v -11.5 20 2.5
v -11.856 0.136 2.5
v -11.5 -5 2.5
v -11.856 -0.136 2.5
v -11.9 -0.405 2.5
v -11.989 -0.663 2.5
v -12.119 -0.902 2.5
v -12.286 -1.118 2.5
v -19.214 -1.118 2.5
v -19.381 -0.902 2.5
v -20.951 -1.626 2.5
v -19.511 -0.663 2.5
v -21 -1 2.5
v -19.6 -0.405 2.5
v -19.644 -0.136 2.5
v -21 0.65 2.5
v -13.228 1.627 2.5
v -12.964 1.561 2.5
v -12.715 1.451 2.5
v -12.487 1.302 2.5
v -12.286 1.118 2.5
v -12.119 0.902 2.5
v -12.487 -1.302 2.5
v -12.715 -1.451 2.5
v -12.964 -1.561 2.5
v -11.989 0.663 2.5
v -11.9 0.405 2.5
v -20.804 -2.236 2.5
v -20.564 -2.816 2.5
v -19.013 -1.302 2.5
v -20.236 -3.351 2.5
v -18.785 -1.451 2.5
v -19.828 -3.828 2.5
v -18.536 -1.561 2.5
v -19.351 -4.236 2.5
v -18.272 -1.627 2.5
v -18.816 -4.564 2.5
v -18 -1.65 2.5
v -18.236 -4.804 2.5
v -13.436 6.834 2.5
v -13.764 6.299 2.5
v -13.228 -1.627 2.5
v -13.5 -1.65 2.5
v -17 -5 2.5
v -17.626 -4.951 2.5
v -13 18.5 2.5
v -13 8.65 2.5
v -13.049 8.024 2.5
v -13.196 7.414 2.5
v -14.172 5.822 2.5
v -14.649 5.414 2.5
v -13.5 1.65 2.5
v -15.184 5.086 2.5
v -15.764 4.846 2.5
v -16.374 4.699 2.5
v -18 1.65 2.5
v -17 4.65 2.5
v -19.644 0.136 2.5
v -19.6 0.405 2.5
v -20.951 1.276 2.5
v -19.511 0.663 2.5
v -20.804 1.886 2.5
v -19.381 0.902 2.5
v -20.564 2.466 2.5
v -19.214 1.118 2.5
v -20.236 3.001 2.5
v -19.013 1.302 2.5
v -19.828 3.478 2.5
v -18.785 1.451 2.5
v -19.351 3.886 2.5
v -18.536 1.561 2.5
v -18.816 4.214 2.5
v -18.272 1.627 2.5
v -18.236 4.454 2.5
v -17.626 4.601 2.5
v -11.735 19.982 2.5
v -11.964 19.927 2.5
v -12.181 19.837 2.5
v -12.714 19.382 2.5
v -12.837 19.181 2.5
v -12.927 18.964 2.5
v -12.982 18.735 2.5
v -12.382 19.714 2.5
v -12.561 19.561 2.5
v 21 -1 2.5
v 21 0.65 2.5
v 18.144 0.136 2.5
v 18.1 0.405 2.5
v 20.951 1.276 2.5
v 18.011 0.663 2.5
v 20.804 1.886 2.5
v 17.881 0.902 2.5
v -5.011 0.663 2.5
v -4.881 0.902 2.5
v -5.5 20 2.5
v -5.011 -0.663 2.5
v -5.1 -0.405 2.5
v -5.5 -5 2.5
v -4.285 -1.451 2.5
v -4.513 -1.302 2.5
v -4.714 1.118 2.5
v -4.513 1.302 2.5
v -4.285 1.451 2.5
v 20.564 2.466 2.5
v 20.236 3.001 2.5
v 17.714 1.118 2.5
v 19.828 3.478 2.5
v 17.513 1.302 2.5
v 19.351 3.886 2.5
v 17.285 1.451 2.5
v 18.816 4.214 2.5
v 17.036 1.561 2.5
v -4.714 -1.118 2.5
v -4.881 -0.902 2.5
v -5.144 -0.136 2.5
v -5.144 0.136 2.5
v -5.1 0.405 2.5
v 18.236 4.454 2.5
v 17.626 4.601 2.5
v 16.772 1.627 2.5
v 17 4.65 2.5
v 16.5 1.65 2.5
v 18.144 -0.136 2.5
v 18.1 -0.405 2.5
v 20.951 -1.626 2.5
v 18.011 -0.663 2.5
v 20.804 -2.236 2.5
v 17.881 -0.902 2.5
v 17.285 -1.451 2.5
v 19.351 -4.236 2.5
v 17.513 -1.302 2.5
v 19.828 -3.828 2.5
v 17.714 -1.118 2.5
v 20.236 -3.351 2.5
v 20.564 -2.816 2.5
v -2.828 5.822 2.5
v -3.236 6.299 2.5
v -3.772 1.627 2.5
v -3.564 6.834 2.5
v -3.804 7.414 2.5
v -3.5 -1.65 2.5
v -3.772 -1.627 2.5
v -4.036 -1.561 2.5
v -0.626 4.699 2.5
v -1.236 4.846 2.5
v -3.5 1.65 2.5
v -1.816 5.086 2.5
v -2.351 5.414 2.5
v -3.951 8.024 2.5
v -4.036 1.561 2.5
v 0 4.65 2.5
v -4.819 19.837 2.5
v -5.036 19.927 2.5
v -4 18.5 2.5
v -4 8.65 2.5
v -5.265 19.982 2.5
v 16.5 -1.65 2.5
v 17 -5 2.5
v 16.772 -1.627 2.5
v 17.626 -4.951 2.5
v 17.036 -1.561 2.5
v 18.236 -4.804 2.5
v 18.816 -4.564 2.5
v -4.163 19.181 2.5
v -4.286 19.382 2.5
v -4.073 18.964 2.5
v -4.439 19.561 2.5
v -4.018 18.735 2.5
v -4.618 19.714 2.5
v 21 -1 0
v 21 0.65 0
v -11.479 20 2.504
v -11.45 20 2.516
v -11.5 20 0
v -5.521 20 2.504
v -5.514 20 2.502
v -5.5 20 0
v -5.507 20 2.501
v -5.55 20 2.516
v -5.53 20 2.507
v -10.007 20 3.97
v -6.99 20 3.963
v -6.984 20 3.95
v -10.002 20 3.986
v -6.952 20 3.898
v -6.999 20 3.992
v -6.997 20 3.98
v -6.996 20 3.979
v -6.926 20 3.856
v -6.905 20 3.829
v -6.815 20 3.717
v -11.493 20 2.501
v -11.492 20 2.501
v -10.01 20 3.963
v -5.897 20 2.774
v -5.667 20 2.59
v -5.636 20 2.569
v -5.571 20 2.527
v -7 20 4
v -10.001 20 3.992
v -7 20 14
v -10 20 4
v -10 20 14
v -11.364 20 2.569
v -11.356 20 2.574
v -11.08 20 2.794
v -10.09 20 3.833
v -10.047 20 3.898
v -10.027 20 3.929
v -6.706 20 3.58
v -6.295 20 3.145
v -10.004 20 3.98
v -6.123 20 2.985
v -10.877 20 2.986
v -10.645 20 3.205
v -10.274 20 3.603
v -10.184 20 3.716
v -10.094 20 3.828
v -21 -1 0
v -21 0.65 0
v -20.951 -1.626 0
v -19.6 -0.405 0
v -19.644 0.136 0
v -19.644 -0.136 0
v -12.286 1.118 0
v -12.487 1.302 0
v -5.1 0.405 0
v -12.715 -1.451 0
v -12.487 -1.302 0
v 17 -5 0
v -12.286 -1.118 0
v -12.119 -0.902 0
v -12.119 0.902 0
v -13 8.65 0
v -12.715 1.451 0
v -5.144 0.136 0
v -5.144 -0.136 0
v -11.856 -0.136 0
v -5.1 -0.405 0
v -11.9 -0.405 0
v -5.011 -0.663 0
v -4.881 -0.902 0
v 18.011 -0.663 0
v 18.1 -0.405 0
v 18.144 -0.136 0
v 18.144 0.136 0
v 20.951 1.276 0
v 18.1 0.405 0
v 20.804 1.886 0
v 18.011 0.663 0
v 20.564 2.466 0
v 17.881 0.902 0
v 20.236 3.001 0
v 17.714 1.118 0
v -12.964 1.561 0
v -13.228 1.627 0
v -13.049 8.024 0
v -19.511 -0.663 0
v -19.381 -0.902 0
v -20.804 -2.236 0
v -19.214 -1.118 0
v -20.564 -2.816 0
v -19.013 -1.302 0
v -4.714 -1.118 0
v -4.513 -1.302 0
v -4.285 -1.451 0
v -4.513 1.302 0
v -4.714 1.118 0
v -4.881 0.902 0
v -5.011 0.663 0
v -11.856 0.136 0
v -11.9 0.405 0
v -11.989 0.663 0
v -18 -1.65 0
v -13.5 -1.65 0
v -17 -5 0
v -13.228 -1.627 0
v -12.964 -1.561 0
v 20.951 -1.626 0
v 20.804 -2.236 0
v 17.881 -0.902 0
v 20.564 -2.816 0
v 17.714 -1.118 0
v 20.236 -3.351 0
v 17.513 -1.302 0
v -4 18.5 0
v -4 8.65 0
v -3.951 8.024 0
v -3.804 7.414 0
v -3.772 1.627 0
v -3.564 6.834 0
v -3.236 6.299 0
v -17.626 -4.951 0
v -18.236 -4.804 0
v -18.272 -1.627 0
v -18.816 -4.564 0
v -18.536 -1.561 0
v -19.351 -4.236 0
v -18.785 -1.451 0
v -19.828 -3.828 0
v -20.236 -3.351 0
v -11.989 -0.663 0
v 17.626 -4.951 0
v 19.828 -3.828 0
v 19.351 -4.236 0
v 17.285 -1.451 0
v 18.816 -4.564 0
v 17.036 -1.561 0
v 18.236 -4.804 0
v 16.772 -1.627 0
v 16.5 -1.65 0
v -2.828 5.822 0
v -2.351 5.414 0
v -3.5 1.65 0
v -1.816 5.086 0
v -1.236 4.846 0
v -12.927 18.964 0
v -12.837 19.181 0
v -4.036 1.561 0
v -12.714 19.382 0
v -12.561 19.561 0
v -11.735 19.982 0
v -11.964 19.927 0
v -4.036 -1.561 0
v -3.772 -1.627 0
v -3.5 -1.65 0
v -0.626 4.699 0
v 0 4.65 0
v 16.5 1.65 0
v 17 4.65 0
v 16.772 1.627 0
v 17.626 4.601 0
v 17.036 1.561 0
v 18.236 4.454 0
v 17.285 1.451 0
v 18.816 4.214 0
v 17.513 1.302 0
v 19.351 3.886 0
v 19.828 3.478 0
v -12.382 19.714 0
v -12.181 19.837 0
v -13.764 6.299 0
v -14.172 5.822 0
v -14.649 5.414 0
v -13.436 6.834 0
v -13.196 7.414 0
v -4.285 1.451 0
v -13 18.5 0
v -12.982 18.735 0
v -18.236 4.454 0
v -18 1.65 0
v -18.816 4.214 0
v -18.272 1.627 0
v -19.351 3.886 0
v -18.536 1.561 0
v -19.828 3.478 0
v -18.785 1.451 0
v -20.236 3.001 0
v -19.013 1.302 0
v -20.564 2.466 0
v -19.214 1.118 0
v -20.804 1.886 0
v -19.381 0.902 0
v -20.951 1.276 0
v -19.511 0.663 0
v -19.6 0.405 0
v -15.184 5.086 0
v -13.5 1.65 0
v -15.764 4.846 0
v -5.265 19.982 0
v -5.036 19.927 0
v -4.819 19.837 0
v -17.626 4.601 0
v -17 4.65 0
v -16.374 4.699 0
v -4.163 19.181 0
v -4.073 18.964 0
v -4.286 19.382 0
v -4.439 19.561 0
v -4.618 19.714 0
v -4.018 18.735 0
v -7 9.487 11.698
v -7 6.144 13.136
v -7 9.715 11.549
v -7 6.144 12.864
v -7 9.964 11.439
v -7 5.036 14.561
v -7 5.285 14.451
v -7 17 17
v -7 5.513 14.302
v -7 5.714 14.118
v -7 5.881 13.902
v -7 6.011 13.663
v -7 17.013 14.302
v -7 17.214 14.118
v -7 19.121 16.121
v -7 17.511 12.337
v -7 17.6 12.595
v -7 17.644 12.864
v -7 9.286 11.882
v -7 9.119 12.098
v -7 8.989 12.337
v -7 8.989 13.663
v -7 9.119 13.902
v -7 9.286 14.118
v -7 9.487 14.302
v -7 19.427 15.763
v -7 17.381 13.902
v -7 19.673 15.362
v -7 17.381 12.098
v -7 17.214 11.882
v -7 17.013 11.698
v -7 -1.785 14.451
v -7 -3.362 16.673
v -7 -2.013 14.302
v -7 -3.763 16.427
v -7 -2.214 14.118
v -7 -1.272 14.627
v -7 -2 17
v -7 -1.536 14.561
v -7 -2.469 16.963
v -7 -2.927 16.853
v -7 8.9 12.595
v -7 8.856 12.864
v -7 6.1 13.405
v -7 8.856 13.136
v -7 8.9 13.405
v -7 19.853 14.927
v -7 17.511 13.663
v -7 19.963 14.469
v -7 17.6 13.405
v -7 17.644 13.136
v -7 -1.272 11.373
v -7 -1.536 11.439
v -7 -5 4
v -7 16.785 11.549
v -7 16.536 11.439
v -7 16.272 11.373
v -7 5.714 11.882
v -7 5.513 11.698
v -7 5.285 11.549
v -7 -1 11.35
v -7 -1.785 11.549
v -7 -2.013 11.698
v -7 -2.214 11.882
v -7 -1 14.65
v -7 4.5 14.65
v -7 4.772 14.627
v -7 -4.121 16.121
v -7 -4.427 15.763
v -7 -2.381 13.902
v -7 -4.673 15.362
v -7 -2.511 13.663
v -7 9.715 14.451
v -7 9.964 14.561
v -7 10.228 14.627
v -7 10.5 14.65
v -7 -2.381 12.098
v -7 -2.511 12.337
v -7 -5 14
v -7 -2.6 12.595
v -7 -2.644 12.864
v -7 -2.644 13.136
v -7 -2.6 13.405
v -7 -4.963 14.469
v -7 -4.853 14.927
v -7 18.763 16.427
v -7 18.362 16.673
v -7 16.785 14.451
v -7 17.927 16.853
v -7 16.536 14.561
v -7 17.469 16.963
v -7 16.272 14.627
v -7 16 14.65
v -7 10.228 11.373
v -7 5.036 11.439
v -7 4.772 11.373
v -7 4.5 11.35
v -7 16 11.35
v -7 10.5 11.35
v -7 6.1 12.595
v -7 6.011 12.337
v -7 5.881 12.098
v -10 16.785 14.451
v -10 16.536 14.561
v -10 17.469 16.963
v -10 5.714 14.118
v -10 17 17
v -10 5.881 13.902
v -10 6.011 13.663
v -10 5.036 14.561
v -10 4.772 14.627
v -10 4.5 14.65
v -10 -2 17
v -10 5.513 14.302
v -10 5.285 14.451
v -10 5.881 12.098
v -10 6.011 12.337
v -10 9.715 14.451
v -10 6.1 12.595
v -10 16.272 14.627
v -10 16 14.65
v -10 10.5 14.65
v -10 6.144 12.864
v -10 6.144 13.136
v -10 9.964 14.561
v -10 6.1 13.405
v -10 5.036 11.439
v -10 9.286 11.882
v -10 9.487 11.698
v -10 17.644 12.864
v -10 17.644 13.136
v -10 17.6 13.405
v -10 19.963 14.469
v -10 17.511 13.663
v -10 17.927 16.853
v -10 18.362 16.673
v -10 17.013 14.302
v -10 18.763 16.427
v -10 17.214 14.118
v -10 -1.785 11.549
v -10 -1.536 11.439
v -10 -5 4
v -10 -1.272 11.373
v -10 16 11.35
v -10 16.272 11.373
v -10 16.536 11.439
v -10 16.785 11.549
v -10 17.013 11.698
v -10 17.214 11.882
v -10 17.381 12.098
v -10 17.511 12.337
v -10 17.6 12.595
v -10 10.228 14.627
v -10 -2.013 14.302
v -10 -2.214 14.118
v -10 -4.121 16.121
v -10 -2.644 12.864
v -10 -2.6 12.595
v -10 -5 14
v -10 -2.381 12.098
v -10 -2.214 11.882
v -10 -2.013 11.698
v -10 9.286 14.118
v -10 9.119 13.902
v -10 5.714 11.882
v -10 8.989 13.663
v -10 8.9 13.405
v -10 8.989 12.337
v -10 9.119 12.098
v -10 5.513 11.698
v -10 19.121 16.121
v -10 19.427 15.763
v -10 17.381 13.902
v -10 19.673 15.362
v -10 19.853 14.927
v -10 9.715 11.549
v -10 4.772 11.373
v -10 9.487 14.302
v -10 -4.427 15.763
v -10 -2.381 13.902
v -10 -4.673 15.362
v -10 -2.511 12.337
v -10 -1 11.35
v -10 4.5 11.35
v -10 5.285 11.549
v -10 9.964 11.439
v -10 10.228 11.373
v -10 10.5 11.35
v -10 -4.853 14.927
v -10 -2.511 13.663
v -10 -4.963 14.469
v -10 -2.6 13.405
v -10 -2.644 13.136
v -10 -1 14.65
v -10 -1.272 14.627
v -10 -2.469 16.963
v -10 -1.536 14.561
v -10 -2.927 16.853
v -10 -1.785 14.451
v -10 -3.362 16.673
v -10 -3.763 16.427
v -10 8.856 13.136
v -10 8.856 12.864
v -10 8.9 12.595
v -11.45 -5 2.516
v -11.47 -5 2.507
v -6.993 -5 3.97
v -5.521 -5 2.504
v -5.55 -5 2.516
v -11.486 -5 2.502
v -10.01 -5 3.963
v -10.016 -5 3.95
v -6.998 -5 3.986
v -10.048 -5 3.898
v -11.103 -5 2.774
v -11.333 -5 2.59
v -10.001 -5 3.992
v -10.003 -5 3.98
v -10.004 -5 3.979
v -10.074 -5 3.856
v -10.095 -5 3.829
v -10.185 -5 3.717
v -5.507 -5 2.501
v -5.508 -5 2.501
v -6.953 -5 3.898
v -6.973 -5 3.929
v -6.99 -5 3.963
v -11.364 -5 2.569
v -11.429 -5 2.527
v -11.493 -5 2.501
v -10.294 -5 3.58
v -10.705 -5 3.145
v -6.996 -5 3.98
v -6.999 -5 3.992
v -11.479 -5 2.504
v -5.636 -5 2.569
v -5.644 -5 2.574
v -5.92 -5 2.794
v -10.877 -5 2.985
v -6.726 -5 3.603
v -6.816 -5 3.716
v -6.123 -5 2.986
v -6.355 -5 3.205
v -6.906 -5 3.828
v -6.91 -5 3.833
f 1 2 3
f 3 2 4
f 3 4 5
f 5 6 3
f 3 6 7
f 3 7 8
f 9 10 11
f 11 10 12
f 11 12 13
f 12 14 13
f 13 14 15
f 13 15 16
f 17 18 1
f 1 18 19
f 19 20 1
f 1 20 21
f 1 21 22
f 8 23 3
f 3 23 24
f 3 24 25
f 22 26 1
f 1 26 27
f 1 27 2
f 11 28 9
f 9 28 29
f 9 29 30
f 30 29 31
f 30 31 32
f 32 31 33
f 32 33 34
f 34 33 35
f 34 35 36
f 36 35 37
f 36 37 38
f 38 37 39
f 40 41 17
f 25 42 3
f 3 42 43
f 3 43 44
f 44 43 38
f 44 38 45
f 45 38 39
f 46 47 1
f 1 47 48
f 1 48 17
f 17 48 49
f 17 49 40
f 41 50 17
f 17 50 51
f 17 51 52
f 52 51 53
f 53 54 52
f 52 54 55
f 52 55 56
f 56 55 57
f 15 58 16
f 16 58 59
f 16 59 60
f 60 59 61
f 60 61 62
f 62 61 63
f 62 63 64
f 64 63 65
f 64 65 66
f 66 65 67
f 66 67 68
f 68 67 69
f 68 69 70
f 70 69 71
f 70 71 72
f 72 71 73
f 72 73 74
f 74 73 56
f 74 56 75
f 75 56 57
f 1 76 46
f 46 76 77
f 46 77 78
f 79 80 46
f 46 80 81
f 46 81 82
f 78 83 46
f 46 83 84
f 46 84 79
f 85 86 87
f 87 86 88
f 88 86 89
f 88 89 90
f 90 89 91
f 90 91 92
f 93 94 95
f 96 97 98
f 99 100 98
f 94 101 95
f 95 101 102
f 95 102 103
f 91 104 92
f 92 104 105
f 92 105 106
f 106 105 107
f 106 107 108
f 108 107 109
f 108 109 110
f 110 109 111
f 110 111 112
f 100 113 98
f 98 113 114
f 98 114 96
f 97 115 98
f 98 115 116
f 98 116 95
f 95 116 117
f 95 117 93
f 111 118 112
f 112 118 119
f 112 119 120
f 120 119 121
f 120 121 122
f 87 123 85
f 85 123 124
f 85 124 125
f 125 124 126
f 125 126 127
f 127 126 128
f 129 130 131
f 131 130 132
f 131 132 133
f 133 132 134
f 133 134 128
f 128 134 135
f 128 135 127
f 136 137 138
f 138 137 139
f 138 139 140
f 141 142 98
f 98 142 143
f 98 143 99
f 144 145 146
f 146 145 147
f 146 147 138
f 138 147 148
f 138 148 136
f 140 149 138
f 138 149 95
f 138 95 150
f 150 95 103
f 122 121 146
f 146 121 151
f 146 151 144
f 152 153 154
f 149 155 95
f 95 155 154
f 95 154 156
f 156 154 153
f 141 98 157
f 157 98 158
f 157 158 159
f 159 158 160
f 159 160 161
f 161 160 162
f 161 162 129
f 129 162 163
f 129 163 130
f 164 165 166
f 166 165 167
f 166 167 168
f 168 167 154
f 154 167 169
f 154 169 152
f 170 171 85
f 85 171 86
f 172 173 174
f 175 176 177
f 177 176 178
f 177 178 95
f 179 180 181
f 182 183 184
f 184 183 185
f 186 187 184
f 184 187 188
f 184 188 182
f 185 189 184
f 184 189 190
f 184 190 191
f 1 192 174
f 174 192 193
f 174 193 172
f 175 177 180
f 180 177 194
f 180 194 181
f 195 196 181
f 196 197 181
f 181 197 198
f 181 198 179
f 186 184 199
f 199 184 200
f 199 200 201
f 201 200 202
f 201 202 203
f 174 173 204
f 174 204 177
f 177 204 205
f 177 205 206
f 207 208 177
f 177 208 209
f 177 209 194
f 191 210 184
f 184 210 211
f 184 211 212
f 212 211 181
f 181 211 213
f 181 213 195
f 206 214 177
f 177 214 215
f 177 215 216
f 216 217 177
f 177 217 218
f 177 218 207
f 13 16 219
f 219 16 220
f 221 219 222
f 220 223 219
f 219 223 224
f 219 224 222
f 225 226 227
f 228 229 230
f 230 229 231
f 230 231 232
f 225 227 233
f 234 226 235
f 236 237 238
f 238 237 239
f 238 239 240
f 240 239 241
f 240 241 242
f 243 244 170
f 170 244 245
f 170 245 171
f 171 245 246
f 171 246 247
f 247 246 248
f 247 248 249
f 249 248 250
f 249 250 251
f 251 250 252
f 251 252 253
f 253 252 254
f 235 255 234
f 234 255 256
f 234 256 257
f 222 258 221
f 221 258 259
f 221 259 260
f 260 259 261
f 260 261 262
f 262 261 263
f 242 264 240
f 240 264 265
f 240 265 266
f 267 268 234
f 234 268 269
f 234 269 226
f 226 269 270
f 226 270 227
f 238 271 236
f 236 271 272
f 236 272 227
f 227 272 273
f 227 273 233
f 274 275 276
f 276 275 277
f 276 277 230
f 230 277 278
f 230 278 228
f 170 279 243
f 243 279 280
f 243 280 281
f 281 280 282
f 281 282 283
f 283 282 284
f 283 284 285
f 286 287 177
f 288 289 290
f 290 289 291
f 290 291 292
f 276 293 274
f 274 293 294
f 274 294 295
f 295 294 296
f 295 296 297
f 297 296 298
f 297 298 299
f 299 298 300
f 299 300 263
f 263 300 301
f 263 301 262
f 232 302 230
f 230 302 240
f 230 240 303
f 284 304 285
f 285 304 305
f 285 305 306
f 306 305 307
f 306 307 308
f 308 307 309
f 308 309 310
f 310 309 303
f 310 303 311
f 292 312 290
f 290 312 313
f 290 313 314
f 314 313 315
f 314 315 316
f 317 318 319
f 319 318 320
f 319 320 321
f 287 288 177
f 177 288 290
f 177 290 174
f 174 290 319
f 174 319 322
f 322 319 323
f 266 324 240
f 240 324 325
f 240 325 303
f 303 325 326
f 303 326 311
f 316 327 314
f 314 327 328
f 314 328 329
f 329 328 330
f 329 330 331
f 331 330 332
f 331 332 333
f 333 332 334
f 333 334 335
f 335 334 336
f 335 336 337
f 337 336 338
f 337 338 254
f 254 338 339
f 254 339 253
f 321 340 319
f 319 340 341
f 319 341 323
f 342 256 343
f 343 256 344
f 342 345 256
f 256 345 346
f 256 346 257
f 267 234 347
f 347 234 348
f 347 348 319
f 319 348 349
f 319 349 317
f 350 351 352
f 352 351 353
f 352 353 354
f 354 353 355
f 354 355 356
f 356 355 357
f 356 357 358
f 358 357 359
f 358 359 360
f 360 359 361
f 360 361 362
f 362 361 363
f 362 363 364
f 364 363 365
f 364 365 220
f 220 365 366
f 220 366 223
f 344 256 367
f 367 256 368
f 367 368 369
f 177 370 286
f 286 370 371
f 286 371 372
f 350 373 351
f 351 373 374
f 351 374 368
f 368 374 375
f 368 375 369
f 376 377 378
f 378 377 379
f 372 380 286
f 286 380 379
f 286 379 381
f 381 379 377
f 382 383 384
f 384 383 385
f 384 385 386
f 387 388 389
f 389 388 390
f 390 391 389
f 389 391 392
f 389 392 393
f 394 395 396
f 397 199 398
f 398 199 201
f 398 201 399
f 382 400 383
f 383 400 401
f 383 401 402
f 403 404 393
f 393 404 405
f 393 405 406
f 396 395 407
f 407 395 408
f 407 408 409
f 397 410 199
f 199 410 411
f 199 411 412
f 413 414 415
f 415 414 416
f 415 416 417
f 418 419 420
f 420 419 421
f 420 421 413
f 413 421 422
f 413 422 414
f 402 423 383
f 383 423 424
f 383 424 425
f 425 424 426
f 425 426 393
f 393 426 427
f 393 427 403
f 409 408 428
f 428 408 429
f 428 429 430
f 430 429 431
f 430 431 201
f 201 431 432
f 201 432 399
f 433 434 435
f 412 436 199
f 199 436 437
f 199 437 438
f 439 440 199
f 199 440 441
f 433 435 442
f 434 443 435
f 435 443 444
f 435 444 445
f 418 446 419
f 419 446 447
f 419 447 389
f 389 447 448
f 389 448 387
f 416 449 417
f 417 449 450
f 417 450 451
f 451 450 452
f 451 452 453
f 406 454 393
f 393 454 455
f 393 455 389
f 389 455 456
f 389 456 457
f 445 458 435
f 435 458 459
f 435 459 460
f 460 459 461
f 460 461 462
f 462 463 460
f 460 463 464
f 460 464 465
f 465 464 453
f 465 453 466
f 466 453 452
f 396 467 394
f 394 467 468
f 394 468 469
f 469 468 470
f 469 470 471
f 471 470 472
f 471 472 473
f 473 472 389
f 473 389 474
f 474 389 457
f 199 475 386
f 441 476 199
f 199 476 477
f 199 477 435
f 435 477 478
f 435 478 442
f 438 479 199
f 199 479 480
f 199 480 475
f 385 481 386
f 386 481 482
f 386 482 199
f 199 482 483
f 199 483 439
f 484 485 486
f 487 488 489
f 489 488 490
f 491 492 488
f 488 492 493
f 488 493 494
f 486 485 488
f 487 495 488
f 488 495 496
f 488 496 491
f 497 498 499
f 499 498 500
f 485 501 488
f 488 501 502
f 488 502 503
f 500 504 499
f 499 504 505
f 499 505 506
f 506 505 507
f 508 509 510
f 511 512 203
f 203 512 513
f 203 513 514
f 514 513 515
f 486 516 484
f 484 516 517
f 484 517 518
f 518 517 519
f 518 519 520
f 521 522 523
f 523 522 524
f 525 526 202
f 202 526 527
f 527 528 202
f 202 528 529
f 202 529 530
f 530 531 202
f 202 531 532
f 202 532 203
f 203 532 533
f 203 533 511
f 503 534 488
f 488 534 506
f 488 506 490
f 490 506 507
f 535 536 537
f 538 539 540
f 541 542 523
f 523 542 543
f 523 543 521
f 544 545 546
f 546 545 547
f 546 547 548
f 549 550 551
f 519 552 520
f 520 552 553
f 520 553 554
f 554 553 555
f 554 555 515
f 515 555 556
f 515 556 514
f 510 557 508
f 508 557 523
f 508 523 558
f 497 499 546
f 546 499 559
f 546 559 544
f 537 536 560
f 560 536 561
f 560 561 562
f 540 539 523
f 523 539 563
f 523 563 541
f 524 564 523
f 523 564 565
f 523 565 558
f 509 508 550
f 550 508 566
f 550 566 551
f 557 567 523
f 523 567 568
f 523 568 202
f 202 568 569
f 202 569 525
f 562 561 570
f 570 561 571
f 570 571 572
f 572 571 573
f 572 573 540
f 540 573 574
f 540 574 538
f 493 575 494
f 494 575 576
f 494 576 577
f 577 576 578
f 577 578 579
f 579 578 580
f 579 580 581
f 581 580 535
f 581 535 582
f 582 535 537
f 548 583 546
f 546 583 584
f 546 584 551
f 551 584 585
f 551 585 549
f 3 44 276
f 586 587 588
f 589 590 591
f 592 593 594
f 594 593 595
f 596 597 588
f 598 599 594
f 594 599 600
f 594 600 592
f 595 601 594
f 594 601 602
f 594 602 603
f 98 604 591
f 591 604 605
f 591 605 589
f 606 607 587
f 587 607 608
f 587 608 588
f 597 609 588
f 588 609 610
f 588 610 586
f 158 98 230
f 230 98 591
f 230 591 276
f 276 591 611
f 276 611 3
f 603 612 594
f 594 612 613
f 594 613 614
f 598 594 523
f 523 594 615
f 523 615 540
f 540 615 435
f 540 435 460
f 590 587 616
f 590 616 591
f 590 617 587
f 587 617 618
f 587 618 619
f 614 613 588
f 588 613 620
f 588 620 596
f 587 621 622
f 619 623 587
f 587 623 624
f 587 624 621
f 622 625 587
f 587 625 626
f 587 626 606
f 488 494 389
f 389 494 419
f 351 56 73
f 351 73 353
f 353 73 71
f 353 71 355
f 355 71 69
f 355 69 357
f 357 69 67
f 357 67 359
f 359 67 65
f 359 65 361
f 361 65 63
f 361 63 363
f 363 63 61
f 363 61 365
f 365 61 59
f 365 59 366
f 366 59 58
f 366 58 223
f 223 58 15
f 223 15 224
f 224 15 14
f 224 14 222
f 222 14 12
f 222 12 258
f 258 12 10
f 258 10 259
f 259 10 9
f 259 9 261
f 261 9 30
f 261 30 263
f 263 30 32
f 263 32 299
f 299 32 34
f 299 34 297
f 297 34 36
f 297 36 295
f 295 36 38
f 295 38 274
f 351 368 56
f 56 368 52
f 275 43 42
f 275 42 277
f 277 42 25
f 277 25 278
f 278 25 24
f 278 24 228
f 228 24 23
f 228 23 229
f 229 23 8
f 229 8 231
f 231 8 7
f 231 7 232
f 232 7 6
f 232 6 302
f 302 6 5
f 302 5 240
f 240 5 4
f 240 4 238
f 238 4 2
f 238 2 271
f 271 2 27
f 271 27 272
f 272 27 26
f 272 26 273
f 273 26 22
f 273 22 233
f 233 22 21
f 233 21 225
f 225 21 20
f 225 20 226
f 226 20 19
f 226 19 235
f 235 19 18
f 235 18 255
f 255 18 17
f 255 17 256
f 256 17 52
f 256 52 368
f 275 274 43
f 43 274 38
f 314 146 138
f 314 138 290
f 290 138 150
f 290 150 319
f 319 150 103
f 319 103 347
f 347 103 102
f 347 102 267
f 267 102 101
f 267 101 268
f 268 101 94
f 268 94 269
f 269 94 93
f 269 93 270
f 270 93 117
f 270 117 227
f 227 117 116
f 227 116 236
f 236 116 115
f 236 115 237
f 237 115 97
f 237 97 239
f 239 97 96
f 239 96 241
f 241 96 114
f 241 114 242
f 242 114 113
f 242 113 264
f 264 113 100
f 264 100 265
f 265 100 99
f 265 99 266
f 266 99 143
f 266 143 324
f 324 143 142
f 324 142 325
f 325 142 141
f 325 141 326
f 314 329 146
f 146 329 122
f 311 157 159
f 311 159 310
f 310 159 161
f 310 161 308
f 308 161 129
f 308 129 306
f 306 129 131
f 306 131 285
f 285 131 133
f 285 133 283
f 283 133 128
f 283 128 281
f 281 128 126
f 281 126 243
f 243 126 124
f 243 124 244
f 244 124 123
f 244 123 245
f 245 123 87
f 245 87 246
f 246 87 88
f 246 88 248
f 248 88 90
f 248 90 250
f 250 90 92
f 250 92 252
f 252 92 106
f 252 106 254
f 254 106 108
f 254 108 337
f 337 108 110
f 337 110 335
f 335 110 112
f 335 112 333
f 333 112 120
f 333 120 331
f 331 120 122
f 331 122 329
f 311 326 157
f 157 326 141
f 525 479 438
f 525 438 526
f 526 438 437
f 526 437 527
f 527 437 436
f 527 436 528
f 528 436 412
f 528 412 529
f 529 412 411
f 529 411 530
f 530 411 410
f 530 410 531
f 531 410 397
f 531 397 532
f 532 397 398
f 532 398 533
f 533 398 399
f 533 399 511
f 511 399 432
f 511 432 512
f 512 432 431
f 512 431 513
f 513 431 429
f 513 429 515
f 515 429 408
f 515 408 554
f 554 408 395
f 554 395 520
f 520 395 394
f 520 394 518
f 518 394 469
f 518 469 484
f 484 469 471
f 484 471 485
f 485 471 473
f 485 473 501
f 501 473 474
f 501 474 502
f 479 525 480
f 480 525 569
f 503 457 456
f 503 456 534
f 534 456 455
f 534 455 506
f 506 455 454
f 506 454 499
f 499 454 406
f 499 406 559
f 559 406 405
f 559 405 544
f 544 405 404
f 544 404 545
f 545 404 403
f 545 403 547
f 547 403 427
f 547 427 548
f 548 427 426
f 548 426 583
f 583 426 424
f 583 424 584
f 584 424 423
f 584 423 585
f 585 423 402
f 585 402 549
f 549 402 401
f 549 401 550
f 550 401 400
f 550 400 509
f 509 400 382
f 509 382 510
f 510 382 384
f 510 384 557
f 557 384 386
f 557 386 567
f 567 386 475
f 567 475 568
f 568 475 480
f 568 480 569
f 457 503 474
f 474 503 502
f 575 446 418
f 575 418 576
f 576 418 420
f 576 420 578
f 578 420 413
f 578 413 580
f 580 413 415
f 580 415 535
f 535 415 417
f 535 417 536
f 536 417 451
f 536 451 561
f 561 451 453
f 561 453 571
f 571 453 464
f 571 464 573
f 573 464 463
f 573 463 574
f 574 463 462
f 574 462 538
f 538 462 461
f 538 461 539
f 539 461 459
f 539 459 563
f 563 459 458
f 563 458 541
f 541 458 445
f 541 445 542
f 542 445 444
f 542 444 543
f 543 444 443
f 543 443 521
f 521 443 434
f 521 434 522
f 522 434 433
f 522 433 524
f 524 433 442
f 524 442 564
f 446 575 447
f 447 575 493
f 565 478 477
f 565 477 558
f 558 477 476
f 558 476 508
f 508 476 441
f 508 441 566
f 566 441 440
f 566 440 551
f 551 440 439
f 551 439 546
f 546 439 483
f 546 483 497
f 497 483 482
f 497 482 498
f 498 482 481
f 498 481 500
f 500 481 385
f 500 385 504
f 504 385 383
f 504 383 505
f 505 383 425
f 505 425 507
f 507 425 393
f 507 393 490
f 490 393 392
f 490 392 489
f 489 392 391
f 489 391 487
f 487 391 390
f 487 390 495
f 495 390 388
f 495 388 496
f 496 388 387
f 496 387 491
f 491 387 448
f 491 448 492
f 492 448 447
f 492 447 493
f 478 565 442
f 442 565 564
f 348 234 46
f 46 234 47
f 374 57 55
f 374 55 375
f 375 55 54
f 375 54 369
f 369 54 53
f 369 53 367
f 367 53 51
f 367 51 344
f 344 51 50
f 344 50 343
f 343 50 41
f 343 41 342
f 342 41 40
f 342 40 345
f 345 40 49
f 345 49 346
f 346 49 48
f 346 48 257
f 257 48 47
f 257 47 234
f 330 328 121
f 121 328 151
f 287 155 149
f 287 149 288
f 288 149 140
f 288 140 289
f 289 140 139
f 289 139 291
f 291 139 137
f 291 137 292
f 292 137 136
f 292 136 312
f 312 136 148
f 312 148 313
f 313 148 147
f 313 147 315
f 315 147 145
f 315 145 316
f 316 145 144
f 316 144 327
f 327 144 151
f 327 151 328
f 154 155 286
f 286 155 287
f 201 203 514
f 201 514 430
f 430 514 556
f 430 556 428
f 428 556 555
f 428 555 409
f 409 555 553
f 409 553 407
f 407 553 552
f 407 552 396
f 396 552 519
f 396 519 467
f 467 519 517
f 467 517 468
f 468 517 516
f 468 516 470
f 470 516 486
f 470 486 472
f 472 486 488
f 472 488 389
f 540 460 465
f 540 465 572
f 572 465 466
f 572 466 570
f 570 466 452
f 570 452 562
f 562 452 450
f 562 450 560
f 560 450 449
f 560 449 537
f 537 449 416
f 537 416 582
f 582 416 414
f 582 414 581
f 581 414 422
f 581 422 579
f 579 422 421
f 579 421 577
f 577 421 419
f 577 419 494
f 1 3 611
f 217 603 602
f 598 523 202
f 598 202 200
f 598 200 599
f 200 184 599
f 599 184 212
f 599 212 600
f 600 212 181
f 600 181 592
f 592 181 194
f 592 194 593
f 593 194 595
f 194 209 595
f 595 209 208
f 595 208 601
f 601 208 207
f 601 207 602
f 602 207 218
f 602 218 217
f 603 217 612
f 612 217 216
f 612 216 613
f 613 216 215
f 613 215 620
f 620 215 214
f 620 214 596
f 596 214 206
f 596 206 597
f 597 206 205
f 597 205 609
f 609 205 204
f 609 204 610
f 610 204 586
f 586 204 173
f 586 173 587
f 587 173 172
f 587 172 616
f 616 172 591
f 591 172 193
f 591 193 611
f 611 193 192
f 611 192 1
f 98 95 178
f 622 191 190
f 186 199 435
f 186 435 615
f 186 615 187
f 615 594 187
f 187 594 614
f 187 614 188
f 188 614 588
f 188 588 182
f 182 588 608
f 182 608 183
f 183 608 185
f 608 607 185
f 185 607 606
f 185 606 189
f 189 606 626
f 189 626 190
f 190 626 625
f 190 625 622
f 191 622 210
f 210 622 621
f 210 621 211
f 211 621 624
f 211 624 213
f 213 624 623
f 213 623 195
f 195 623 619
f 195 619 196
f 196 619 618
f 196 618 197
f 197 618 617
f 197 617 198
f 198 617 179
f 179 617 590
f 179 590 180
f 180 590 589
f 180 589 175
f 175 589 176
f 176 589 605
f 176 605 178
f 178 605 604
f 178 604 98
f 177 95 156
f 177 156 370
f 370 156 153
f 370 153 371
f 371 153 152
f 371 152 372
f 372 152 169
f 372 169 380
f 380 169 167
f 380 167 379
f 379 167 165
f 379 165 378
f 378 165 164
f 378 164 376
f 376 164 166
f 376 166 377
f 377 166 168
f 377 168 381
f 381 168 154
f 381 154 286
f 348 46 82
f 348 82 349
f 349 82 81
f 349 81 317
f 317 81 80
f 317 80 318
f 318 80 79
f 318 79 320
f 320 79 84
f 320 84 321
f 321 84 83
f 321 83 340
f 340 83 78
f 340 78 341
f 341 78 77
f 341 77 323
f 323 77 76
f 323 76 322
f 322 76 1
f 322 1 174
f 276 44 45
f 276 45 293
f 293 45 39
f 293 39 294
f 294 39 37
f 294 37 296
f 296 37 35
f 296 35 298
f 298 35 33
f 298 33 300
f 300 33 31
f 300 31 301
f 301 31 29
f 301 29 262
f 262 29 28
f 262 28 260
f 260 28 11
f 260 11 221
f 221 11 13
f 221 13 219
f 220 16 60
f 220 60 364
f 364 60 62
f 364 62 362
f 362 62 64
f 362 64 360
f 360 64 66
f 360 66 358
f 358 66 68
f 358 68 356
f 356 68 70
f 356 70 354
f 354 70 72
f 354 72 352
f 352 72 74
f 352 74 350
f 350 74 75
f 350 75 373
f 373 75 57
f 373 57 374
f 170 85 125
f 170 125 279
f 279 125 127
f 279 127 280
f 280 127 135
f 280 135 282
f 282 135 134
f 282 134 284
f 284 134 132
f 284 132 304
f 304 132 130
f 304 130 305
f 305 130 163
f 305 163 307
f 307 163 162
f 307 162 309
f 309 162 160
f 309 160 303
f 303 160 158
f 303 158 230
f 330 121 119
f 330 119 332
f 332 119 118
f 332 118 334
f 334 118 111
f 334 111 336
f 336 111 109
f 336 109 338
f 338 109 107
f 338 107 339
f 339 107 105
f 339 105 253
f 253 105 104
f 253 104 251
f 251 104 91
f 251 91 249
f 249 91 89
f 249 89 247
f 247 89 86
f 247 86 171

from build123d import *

# Parameters (mm, degrees)
SKETCH_1_W          = 42
SKETCH_1_H          = 40
EXTRUDE_1_DEPTH     = 2.5
SKETCH_2_W          = 3
SKETCH_2_H          = 25
EXTRUDE_2_DEPTH     = 14.5
CUT_EXTRUDE_2_DEPTH = 33.422985674
CUT_EXTRUDE_3_DEPTH = 39.379682125
SKETCH_6_W          = 42
SKETCH_6_H          = 15
CUT_EXTRUDE_4_DEPTH = 33.422985674
CUT_EXTRUDE_5_DEPTH = 33.422985674
FILLET_2_R          = 3
FILLET_3_SIZE       = 1.5
FILLET_4_R          = 1.5
FILLET_5_R          = 4


# Some blends are built 0.0001 mm under size
with BuildPart() as part:
    # 草图1 → 凸台-拉伸1 (new body)
    with BuildSketch(Plane.XY):
        Rectangle(SKETCH_1_W, SKETCH_1_H)
    extrude(amount=EXTRUDE_1_DEPTH)

    # 草图2 → 凸台-拉伸2 (add)
    with BuildSketch(Plane.XY.offset(2.5)):
        with Locations((-8.5, 7.5)):
            Rectangle(SKETCH_2_W, SKETCH_2_H)
    extrude(amount=EXTRUDE_2_DEPTH)

    # 草图5 → 切除-拉伸2 (cut, through all)
    with BuildSketch(Plane.XY.offset(2.5)):
        with BuildLine():
            Line((-18, 1.65), (-13.5, 1.65))
            ThreePointArc((-13.5, 1.65), (-11.85, 0), (-13.5, -1.65))
            Line((-13.5, -1.65), (-18, -1.65))
            ThreePointArc((-18, -1.65), (-19.65, 0), (-18, 1.65))
        make_face()
        with BuildLine():
            Line((-3.5, 1.65), (16.5, 1.65))
            ThreePointArc((16.5, 1.65), (18.15, 0), (16.5, -1.65))
            Line((16.5, -1.65), (-3.5, -1.65))
            ThreePointArc((-3.5, -1.65), (-5.15, 0), (-3.5, 1.65))
        make_face()
    extrude(amount=-CUT_EXTRUDE_2_DEPTH, mode=Mode.SUBTRACT)

    # 草图4 → 切除-拉伸3 (cut, through all)
    with BuildSketch(Plane(origin=(-7, 0, 0), x_dir=(0, 0, -1), z_dir=(1, 0, 0))):
        with BuildLine():
            Line((-11.35, 16), (-11.35, 10.5))
            ThreePointArc((-11.35, 10.5), (-13, 8.85), (-14.65, 10.5))
            Line((-14.65, 10.5), (-14.65, 16))
            ThreePointArc((-14.65, 16), (-13, 17.65), (-11.35, 16))
        make_face()
        with BuildLine():
            Line((-11.35, -1), (-11.35, 4.5))
            ThreePointArc((-11.35, 4.5), (-13, 6.15), (-14.65, 4.5))
            Line((-14.65, 4.5), (-14.65, -1))
            ThreePointArc((-14.65, -1), (-13, -2.65), (-11.35, -1))
        make_face()
    extrude(amount=-CUT_EXTRUDE_3_DEPTH, mode=Mode.SUBTRACT)

    # 草图6 → 切除-拉伸4 (cut, through all)
    with BuildSketch(Plane.XY.offset(2.5)):
        with Locations((0, -12.5)):
            Rectangle(SKETCH_6_W, SKETCH_6_H)
    extrude(amount=-CUT_EXTRUDE_4_DEPTH, mode=Mode.SUBTRACT)

    # 草图7 → 切除-拉伸5 (cut, through all)
    with BuildSketch(Plane.XY.offset(2.5)):
        with BuildLine():
            Line((-21, 20), (-13, 20))
            Line((-13, 20), (-13, 8.65))
            ThreePointArc((-13, 8.65), (-14.171572875, 5.821572875), (-17, 4.65))
            Line((-17, 4.65), (-21, 4.65))
            Line((-21, 4.65), (-21, 20))
        make_face()
        with BuildLine():
            Line((21, 20), (-4, 20))
            Line((-4, 20), (-4, 8.65))
            ThreePointArc((-4, 8.65), (-2.828427125, 5.821572875), (0, 4.65))
            Line((0, 4.65), (21, 4.65))
            Line((21, 4.65), (21, 20))
        make_face()
    extrude(amount=-CUT_EXTRUDE_5_DEPTH, mode=Mode.SUBTRACT)

    # 圆角2
    fillet_2_edges = [part.edges().sort_by_distance(p)[0] for p in [
        (-8.5, 20, 17),
        (-8.5, -5, 17),
    ]]
    fillet(fillet_2_edges, radius=FILLET_2_R)

    # 圆角3
    # a fillet whose section is not a circle: 1.5 mm, written as the material it adds along each edge
    with BuildSketch(Plane(origin=(-10, 20, 2.5), x_dir=(0, 0, 1), z_dir=(0, -1, 0)), Plane(origin=(-7, -5, 2.5), x_dir=(0, 0, 1), z_dir=(0, 1, 0))) as fillet_3_piece_1:
        with BuildLine():
            Bezier((FILLET_3_SIZE, 0), (0, 0), (0, FILLET_3_SIZE), weights=[1, 0.111111111, 1])
            Line((0, FILLET_3_SIZE), (0, 0))
            Line((0, 0), (FILLET_3_SIZE, 0))
        make_face()
    extrude(amount=25)

    # 圆角4
    fillet_4_edges = [part.edges().sort_by_distance(p)[0] for p in [
        (-4, 20, 1.25),
        (-13, 20, 1.25),
    ]]
    fillet(fillet_4_edges, radius=FILLET_4_R)

    # 圆角5
    fillet_5_edges = [part.edges().sort_by_distance(p)[0] for p in [
        (-21, -5, 1.25),
        (-21, 4.65, 1.25),
        (21, -5, 1.25),
        (21, 4.65, 1.25),
    ]]
    fillet(fillet_5_edges, radius=FILLET_5_R - 0.0001)  # a hair under: the kernel refuses the full size


solid = part.part
